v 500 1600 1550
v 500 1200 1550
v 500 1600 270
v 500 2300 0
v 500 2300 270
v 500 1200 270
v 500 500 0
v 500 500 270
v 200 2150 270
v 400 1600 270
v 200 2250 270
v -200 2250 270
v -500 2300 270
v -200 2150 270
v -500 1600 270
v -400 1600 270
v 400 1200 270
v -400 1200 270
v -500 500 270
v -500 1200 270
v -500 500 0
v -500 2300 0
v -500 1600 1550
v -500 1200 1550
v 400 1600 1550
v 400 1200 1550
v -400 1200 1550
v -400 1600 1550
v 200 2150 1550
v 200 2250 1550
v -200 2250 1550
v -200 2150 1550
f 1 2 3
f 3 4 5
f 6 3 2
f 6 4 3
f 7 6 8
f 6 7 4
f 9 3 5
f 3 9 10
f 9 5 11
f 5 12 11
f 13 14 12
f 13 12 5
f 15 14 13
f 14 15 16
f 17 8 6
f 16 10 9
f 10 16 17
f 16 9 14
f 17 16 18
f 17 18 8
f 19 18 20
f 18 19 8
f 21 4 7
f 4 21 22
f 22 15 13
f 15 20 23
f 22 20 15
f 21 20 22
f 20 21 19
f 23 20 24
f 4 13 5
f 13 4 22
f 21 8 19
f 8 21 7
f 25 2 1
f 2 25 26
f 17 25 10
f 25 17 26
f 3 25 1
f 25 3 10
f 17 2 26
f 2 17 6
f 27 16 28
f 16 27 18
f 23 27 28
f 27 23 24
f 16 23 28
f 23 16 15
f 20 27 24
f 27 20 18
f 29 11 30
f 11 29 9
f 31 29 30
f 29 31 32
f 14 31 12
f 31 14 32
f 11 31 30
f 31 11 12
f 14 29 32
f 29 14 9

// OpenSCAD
union() {
  color("#c09dbf")
  translate([0, 500+900, 135])
    cube([ 1000, 1800, 270], center=true);
  color("#5fa4df")
  translate([ 450, 500+900, 640+270])
    cube([ 100, 400, 1280], center=true);
  color("#5fa4df")
  translate([ -450, 500+900, 640+270])
    cube([ 100, 400, 1280], center=true);
  color("#5fa4df")
  translate([ 0, 2200, 640+270])
    cube([ 400, 100, 1280], center=true);
}
